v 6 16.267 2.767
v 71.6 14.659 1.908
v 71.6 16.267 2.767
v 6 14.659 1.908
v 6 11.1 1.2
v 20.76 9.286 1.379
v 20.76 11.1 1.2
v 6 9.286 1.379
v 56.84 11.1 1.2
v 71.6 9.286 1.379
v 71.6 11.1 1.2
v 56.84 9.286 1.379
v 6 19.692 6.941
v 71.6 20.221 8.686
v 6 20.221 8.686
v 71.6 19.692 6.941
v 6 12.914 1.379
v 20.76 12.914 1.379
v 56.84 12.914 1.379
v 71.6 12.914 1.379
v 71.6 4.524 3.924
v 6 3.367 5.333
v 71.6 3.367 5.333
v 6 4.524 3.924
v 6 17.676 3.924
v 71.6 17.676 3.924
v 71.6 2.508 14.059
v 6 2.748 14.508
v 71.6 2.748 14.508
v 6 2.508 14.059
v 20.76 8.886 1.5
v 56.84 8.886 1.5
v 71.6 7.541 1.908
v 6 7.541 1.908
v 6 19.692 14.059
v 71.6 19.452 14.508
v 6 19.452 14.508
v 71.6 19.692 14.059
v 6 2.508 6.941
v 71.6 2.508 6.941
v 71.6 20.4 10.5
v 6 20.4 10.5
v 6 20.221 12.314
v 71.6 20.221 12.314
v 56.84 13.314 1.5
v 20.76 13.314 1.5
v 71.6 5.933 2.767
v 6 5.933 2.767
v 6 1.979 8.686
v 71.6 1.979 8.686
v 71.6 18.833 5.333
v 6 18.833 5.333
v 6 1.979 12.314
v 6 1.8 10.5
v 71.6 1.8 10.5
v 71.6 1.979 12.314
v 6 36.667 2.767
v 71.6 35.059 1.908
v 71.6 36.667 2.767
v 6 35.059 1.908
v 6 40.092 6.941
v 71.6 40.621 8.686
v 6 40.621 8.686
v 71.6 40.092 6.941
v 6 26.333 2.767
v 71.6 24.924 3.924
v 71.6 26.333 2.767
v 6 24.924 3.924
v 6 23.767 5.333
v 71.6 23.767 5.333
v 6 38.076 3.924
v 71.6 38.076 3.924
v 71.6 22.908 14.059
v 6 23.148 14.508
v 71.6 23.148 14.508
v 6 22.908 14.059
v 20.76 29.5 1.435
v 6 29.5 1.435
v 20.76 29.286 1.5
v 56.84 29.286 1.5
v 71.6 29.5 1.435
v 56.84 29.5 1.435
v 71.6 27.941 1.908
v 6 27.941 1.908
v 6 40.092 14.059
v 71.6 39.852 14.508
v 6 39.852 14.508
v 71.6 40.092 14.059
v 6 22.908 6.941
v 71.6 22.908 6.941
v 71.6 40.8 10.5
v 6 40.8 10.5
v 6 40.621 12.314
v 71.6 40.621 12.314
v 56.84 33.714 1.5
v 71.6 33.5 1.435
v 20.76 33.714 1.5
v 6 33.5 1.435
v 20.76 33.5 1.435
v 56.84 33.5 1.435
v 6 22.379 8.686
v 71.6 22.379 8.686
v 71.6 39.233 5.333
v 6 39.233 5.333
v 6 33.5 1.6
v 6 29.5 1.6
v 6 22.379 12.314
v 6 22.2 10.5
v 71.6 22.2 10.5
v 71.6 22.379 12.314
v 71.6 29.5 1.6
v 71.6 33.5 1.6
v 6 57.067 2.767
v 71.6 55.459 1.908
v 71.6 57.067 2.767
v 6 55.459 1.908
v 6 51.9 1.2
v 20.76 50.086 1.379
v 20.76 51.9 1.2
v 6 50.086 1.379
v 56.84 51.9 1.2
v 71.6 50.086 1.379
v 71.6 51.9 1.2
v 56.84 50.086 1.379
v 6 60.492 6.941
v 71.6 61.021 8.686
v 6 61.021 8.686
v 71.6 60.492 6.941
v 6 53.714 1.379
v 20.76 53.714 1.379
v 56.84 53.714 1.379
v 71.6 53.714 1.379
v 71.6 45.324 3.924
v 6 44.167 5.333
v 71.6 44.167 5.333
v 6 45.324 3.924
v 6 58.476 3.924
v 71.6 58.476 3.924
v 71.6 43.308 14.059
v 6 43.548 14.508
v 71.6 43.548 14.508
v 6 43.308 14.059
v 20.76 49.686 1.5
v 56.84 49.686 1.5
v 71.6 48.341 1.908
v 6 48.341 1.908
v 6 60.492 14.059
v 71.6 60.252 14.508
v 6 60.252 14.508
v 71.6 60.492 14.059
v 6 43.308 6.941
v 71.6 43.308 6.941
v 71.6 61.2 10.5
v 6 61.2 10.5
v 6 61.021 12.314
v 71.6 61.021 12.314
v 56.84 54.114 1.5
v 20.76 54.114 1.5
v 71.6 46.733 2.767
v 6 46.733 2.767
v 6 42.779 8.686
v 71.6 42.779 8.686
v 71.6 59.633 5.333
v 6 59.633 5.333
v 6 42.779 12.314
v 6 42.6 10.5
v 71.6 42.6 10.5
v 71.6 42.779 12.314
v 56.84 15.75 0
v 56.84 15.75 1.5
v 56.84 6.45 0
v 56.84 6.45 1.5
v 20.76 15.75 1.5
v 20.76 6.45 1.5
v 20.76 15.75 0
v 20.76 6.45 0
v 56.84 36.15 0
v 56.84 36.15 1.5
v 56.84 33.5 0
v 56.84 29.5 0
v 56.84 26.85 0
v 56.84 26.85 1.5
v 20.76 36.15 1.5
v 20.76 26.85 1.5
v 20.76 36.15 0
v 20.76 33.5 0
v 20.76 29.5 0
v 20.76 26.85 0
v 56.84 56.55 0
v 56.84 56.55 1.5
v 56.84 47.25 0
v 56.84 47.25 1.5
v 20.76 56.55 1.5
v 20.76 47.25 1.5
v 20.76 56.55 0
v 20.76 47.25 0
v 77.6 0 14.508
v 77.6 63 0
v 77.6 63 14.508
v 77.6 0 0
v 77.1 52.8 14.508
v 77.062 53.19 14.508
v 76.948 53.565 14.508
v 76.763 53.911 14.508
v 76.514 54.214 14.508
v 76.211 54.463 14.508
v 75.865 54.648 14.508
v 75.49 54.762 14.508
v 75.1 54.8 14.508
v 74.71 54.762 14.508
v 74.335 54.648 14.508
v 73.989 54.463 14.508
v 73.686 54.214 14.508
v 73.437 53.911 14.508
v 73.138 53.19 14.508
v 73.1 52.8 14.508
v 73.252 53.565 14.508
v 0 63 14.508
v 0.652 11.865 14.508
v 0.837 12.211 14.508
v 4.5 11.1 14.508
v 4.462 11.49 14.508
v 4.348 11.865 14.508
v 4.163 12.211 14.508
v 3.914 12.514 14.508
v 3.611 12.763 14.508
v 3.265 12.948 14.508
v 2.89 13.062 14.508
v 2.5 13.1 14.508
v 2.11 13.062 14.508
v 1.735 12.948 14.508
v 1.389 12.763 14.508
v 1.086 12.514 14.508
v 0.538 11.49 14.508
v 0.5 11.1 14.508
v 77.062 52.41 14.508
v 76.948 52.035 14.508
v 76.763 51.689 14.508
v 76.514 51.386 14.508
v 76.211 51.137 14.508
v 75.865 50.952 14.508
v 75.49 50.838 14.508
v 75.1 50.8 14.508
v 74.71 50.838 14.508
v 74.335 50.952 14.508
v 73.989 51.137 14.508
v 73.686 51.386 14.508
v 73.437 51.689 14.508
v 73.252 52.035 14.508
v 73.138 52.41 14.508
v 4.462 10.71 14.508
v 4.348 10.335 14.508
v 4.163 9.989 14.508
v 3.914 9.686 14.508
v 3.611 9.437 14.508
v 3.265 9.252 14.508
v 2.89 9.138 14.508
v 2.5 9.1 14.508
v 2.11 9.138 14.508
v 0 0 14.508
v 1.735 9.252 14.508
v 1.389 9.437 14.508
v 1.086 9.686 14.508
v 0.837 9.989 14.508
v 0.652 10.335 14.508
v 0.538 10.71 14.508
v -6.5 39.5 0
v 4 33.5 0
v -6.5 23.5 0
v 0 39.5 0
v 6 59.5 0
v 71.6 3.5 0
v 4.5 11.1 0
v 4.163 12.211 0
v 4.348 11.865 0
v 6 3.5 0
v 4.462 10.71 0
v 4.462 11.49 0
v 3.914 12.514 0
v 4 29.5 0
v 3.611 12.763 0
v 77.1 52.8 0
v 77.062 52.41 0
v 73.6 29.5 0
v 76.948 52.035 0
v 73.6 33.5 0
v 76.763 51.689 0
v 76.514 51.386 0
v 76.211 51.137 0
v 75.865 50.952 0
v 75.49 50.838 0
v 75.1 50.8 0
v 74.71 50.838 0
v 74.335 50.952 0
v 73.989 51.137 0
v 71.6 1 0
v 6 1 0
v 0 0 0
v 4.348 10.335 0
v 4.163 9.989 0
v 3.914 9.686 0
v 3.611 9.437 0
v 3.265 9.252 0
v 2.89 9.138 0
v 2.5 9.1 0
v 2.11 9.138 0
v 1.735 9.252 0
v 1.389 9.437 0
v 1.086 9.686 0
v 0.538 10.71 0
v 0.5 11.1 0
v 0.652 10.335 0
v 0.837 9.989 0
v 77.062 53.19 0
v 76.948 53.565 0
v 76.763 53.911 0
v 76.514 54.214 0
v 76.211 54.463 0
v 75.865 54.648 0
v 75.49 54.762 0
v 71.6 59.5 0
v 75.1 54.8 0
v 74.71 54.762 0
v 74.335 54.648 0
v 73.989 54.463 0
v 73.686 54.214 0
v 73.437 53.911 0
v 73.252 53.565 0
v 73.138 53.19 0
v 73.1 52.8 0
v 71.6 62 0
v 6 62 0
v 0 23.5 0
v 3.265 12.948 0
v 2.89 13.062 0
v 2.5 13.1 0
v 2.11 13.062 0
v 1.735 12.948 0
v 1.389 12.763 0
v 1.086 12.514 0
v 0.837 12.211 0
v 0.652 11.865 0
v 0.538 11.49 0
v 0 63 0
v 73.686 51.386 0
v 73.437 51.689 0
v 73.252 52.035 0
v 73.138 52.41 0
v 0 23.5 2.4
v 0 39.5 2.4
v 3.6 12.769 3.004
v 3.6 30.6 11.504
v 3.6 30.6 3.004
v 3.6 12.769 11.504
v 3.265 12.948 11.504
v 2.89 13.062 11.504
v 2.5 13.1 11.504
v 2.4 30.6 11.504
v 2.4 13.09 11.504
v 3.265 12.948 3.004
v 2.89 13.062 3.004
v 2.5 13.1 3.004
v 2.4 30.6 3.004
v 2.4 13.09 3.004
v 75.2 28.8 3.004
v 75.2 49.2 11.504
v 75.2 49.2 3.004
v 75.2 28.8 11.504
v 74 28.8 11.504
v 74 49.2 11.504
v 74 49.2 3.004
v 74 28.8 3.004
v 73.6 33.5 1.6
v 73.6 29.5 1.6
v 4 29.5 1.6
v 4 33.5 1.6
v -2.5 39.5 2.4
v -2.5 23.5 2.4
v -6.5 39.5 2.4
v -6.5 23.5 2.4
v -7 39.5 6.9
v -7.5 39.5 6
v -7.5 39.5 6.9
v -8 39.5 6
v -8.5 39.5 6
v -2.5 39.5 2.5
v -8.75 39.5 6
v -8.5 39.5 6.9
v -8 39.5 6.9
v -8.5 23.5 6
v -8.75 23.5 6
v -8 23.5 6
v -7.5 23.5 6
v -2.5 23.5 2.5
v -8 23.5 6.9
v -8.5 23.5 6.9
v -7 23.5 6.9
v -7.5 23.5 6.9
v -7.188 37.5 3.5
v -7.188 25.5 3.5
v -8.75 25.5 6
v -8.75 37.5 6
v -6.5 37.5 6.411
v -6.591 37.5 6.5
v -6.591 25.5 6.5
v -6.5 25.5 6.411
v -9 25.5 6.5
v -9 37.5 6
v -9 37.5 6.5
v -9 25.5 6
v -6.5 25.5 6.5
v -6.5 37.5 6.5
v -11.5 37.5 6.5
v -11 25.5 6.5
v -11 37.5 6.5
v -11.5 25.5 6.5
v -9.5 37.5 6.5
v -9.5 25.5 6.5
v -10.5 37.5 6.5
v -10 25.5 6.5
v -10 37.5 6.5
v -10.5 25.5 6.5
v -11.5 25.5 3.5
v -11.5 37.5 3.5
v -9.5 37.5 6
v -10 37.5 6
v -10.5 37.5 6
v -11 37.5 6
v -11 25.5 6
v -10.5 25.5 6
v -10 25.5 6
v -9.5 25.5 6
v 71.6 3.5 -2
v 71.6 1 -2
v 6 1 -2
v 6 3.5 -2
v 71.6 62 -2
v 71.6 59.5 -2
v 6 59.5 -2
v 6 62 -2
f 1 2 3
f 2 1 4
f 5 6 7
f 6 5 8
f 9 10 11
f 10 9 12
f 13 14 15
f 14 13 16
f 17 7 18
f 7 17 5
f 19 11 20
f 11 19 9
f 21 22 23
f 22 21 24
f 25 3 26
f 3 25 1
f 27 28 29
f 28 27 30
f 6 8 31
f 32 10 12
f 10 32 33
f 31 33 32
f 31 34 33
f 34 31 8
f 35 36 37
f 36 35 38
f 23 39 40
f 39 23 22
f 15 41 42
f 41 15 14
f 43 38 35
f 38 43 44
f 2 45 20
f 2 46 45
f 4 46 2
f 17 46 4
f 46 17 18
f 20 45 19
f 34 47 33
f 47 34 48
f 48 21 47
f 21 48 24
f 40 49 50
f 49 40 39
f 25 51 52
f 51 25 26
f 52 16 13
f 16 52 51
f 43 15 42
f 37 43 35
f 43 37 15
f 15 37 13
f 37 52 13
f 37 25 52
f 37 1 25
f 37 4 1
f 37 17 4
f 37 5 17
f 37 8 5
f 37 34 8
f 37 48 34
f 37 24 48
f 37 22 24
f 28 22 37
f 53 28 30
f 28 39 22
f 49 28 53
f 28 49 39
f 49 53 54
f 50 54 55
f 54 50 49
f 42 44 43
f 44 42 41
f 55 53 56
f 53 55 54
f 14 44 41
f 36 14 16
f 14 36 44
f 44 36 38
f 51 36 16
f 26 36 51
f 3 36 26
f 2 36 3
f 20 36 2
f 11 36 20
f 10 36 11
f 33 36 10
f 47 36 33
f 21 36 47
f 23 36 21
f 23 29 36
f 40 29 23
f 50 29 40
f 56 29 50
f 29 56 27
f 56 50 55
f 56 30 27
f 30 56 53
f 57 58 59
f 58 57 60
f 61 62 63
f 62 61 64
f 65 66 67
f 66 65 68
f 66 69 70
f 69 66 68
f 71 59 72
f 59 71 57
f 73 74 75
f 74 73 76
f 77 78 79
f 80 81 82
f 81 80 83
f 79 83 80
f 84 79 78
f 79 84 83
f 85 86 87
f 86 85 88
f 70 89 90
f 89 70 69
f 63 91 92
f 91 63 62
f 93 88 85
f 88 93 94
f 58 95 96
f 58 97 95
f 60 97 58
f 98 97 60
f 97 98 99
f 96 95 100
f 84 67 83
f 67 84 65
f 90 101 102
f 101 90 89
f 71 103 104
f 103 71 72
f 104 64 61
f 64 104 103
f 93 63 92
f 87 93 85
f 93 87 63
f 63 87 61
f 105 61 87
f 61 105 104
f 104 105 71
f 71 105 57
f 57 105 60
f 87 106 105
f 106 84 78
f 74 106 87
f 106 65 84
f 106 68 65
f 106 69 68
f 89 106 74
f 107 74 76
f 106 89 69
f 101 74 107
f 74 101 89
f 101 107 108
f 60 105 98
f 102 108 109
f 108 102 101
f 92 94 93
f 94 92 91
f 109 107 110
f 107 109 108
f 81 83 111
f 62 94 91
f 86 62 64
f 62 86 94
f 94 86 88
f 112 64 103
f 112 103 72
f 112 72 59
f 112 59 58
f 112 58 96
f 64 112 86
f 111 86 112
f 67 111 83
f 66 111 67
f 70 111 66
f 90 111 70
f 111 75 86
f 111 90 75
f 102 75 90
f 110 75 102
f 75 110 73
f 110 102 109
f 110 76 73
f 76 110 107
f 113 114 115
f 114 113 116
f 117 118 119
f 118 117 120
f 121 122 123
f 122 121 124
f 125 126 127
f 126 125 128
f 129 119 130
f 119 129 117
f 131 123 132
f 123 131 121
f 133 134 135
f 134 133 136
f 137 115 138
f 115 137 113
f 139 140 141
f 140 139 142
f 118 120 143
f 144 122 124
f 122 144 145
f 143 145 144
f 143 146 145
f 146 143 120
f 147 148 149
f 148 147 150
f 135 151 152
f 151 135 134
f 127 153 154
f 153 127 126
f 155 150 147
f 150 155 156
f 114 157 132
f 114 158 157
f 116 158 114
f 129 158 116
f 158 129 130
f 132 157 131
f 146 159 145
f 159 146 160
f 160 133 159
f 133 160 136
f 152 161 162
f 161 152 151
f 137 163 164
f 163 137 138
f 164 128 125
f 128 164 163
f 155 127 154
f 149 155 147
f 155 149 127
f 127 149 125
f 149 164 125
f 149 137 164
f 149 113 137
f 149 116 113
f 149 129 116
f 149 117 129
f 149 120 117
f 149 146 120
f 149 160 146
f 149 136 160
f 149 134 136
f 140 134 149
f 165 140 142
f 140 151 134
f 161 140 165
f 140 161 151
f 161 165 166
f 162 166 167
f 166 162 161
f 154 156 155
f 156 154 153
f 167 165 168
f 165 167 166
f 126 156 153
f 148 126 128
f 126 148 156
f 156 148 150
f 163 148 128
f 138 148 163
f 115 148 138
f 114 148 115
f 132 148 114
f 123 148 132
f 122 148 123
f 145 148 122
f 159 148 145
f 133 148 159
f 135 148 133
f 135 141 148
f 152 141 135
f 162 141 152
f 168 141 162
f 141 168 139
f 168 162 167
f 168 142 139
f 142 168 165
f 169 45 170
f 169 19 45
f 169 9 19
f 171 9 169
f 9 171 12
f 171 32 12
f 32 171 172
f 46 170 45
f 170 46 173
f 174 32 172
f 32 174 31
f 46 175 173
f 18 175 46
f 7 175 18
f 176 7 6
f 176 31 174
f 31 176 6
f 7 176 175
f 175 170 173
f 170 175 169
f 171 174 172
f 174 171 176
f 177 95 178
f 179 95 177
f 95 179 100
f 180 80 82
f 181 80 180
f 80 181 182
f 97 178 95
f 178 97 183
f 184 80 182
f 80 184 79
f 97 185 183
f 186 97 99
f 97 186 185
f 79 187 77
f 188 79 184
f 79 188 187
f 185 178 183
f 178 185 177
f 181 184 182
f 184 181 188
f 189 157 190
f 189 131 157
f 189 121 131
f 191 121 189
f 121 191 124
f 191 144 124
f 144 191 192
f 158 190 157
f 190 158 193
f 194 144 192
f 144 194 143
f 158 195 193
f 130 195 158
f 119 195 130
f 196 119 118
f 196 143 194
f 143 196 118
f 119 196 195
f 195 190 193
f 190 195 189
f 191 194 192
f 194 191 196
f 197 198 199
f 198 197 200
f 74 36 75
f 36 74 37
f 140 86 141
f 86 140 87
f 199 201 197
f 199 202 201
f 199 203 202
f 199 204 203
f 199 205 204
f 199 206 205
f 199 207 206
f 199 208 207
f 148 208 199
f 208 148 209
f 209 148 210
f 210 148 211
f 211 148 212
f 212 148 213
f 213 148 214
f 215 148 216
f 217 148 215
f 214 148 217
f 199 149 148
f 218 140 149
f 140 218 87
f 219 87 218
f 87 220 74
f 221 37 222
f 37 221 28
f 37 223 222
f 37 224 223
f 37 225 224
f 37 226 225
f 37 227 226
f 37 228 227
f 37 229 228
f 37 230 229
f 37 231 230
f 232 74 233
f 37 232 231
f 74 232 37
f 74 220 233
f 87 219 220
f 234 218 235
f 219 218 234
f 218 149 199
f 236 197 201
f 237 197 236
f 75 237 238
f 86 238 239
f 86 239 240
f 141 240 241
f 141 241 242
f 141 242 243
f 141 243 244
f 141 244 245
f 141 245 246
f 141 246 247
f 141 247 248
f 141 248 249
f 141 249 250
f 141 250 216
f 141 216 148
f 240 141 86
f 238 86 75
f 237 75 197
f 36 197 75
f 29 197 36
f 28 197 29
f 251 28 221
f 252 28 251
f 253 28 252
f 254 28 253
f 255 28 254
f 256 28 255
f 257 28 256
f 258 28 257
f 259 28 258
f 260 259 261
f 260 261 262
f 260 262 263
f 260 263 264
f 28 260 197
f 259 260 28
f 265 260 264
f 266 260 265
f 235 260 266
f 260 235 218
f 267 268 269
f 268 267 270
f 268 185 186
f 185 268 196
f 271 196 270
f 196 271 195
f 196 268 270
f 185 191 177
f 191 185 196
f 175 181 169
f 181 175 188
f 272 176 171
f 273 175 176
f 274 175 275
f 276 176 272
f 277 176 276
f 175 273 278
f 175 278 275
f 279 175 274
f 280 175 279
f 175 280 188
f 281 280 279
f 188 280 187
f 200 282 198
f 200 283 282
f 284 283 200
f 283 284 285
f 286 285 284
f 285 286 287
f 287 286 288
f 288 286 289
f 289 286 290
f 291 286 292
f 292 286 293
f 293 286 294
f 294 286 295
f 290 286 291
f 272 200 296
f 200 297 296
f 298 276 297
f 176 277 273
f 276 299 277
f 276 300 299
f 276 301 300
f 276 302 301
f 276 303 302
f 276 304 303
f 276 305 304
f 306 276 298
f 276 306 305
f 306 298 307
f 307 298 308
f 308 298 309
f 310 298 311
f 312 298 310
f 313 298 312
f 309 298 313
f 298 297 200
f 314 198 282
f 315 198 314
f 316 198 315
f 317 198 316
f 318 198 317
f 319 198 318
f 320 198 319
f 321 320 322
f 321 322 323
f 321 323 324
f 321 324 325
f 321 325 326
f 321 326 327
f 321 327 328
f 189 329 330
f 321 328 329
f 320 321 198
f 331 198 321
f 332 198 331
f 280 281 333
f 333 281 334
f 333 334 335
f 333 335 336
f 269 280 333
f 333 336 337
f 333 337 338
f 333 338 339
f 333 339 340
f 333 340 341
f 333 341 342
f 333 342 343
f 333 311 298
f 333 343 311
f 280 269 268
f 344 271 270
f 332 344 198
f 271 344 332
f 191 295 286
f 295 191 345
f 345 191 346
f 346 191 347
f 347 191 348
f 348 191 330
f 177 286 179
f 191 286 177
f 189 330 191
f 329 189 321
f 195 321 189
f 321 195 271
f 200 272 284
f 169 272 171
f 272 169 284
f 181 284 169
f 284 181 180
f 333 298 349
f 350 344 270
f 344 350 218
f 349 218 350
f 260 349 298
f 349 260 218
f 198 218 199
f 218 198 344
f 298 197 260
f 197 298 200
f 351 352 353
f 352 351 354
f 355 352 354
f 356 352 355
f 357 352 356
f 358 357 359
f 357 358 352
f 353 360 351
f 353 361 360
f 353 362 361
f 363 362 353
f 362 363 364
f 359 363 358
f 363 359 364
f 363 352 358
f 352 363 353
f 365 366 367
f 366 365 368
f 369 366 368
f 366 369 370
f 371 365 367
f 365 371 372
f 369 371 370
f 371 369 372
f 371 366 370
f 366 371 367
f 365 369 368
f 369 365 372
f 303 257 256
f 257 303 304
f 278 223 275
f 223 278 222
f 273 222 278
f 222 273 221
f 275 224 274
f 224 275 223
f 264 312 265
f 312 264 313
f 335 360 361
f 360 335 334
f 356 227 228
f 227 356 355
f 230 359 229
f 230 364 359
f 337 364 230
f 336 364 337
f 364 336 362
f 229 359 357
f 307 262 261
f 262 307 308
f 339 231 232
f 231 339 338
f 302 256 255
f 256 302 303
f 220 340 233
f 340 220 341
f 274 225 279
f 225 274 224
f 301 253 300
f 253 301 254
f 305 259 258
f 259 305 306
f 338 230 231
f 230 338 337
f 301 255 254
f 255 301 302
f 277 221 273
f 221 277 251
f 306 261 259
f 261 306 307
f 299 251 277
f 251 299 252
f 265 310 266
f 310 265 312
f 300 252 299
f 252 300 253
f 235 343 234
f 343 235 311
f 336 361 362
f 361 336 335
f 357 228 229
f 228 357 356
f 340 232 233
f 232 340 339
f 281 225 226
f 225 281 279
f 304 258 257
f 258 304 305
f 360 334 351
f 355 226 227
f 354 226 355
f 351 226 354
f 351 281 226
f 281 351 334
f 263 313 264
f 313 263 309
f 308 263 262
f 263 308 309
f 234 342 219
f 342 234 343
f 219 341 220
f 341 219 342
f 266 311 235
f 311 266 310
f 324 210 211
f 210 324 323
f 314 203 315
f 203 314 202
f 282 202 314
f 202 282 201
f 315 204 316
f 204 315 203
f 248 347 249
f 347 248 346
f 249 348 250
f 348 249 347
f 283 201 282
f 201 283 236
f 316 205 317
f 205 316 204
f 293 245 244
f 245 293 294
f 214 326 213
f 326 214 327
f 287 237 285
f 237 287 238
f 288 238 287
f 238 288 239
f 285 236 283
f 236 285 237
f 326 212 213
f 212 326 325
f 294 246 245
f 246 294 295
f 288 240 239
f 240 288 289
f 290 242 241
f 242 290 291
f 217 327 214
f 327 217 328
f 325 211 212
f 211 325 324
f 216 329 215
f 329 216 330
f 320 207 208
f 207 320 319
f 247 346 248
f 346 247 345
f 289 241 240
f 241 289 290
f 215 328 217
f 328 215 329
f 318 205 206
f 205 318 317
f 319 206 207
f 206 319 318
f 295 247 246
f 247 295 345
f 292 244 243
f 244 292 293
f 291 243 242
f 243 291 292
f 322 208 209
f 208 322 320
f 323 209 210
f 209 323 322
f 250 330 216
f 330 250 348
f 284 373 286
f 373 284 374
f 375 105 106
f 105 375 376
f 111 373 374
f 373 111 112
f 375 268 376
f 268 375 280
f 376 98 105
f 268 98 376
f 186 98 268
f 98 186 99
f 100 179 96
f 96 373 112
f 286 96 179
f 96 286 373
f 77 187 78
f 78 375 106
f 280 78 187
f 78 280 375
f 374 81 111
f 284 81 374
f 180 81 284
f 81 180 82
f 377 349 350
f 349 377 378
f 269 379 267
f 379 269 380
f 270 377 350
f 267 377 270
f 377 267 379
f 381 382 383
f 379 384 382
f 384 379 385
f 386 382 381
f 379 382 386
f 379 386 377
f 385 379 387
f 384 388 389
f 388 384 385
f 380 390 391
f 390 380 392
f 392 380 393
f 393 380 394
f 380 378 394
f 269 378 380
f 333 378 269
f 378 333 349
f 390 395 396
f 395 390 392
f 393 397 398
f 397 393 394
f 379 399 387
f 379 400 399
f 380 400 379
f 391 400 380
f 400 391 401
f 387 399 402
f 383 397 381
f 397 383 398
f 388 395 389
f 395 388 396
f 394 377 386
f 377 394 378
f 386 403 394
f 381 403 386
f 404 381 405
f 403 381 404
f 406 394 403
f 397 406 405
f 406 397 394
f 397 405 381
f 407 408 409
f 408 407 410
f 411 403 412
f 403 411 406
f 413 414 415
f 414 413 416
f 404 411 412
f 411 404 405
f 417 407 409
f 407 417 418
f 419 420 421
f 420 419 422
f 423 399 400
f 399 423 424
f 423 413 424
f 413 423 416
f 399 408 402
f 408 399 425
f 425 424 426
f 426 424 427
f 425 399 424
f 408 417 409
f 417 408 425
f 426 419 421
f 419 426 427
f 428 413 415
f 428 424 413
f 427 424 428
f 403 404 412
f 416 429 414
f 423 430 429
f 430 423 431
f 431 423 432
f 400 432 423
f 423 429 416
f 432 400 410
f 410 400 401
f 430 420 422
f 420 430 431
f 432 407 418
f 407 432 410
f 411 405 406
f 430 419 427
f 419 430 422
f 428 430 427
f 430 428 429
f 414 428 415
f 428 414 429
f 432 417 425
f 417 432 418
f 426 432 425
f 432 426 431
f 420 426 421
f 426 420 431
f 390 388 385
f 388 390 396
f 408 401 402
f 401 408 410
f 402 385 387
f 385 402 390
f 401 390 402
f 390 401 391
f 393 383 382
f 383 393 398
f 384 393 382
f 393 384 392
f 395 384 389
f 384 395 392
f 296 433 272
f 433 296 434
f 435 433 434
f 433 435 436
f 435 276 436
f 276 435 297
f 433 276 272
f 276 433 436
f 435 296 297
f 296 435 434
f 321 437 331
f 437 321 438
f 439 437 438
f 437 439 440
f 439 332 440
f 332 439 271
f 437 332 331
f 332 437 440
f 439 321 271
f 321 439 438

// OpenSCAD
// =============================================================================
// Project Eagle-Eye: High-Current Quick-Swap 3S 18650 Battery Cartridge
// Uses Bent Copper Strip Contacts (Zero High-Resistance Coiled Springs)
// Integrated Cantilever Snap-Lock Latch (Hot-Swap in 3 Seconds)
// =============================================================================

$fn = 32;

// 18650 Cell Dimensions (mm)
cell_dia       = 18.6;   // 18.3mm cell + 0.3mm tolerance
cell_len       = 65.6;   // 65.0mm cell + 0.6mm tolerance
cell_count     = 3;      // 3S1P (11.1V nominal)
wall_thick     = 1.8;
sled_width     = (cell_dia * cell_count) + (wall_thick * (cell_count + 1));
sled_len       = cell_len + 12.0; // Space for bent copper busbars & terminals
sled_height    = cell_dia * 0.78; // Deep cradle with positive cell retention

// Copper Strip Contact Dimensions (0.3mm x 8mm pure copper ribbon)
busbar_slot_w  = 8.5;
busbar_slot_t  = 1.2;

module cell_cradles() {
    difference() {
        // Solid cartridge frame block
        cube([sled_len, sled_width, sled_height]);

        // 3 Cylindrical Cell Bays
        for (i = [0 : cell_count - 1]) {
            y_pos = wall_thick + (cell_dia / 2) + i * (cell_dia + wall_thick);
            translate([sled_len / 2, y_pos, cell_dia / 2 + 1.2]) {
                rotate([0, 90, 0])
                    cylinder(r = cell_dia / 2, h = cell_len, center = true);

                // Top cell insertion & finger ejection slot
                translate([0, 0, cell_dia * 0.35])
                    cube([cell_len - 14, cell_dia * 0.82, cell_dia], center = true);
            }
        }

        // Copper Strip End Channels (Series Busbars)
        // Cell 0 (-) to Cell 1 (+) at Front
        translate([3.0, wall_thick + cell_dia, sled_height / 2])
            cube([busbar_slot_t, cell_dia + wall_thick, busbar_slot_w], center = true);

        // Cell 1 (-) to Cell 2 (+) at Rear
        translate([sled_len - 3.0, wall_thick + cell_dia * 2, sled_height / 2])
            cube([busbar_slot_t, cell_dia + wall_thick, busbar_slot_w], center = true);

        // Terminal Wire Exit Slots (XT30 / 14AWG Main Power Leads)
        // Positive Lead (+) at Front
        translate([2.5, wall_thick + cell_dia / 2, sled_height / 2])
            cylinder(r = 2.0, h = sled_height + 2, center = true);

        // Negative Lead (-) at Rear
        translate([sled_len - 2.5, wall_thick + (cell_count - 0.5) * (cell_dia + wall_thick), sled_height / 2])
            cylinder(r = 2.0, h = sled_height + 2, center = true);

        // 4-Pin JST-XH Balance Cable Routing Channel along bottom floor
        translate([sled_len / 2, sled_width / 2, 0.8])
            cube([sled_len - 8, 4.0, 1.6], center = true);

        // Weight reduction cutouts on underside
        for (i = [0 : cell_count - 1]) {
            y_pos = wall_thick + (cell_dia / 2) + i * (cell_dia + wall_thick);
            translate([sled_len / 2, y_pos, 0])
                cube([cell_len * 0.55, cell_dia * 0.5, 3], center = true);
        }
    }
}

// Flexible Cantilever Snap-Lock Latch (Front End)
module snap_lock_latch() {
    translate([-6.5, sled_width / 2 - 8, 0]) {
        difference() {
            union() {
                // Cantilever spring arm
                cube([7.0, 16.0, 2.4]);
                // Snap latch barb
                translate([0, 0, 2.4])
                    hull() {
                        cube([4.0, 16.0, 0.1]);
                        translate([-2.5, 0, 4.0])
                            cube([2.0, 16.0, 0.5]);
                    }
                // Finger pull tab
                translate([-5.0, 2.0, 3.5])
                    cube([5.0, 12.0, 3.0]);
            }
            // Finger grip serrations
            for (g = [0:3]) {
                translate([-4.5 + g * 1.0, 0, 6.0])
                    cube([0.5, 16.0, 1.0]);
            }
        }
    }
}

// Alignment Guide Rails for Fuselage Floor
module guide_rails() {
    for (y_side = [1.0, sled_width - 3.5]) {
        translate([6.0, y_side, -2.0])
            cube([sled_len - 12.0, 2.5, 2.0]);
    }
}

// Complete 3S 18650 Battery Cartridge Sled
module battery_sled() {
    union() {
        cell_cradles();
        snap_lock_latch();
        guide_rails();
    }
}

battery_sled();
